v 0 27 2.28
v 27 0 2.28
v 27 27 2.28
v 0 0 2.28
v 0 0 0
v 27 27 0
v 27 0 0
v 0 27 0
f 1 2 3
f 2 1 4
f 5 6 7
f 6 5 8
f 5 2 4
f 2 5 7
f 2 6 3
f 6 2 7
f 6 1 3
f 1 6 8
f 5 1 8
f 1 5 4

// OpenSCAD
/* Warning, this is a very basic generator with a lot of approximation 
input data : [FBGA, 6GC, 27x27x2.28mm, 1069, , A, C04-25064A]
generated by com.zoubworld.electronics.cad.model3d.Basic
Date : Sun Feb 15 10:50:49 CET 2026
*/

//body
color("black")
translate([0,0,0])
cube([27.0,27.0,2.28], center=false);
